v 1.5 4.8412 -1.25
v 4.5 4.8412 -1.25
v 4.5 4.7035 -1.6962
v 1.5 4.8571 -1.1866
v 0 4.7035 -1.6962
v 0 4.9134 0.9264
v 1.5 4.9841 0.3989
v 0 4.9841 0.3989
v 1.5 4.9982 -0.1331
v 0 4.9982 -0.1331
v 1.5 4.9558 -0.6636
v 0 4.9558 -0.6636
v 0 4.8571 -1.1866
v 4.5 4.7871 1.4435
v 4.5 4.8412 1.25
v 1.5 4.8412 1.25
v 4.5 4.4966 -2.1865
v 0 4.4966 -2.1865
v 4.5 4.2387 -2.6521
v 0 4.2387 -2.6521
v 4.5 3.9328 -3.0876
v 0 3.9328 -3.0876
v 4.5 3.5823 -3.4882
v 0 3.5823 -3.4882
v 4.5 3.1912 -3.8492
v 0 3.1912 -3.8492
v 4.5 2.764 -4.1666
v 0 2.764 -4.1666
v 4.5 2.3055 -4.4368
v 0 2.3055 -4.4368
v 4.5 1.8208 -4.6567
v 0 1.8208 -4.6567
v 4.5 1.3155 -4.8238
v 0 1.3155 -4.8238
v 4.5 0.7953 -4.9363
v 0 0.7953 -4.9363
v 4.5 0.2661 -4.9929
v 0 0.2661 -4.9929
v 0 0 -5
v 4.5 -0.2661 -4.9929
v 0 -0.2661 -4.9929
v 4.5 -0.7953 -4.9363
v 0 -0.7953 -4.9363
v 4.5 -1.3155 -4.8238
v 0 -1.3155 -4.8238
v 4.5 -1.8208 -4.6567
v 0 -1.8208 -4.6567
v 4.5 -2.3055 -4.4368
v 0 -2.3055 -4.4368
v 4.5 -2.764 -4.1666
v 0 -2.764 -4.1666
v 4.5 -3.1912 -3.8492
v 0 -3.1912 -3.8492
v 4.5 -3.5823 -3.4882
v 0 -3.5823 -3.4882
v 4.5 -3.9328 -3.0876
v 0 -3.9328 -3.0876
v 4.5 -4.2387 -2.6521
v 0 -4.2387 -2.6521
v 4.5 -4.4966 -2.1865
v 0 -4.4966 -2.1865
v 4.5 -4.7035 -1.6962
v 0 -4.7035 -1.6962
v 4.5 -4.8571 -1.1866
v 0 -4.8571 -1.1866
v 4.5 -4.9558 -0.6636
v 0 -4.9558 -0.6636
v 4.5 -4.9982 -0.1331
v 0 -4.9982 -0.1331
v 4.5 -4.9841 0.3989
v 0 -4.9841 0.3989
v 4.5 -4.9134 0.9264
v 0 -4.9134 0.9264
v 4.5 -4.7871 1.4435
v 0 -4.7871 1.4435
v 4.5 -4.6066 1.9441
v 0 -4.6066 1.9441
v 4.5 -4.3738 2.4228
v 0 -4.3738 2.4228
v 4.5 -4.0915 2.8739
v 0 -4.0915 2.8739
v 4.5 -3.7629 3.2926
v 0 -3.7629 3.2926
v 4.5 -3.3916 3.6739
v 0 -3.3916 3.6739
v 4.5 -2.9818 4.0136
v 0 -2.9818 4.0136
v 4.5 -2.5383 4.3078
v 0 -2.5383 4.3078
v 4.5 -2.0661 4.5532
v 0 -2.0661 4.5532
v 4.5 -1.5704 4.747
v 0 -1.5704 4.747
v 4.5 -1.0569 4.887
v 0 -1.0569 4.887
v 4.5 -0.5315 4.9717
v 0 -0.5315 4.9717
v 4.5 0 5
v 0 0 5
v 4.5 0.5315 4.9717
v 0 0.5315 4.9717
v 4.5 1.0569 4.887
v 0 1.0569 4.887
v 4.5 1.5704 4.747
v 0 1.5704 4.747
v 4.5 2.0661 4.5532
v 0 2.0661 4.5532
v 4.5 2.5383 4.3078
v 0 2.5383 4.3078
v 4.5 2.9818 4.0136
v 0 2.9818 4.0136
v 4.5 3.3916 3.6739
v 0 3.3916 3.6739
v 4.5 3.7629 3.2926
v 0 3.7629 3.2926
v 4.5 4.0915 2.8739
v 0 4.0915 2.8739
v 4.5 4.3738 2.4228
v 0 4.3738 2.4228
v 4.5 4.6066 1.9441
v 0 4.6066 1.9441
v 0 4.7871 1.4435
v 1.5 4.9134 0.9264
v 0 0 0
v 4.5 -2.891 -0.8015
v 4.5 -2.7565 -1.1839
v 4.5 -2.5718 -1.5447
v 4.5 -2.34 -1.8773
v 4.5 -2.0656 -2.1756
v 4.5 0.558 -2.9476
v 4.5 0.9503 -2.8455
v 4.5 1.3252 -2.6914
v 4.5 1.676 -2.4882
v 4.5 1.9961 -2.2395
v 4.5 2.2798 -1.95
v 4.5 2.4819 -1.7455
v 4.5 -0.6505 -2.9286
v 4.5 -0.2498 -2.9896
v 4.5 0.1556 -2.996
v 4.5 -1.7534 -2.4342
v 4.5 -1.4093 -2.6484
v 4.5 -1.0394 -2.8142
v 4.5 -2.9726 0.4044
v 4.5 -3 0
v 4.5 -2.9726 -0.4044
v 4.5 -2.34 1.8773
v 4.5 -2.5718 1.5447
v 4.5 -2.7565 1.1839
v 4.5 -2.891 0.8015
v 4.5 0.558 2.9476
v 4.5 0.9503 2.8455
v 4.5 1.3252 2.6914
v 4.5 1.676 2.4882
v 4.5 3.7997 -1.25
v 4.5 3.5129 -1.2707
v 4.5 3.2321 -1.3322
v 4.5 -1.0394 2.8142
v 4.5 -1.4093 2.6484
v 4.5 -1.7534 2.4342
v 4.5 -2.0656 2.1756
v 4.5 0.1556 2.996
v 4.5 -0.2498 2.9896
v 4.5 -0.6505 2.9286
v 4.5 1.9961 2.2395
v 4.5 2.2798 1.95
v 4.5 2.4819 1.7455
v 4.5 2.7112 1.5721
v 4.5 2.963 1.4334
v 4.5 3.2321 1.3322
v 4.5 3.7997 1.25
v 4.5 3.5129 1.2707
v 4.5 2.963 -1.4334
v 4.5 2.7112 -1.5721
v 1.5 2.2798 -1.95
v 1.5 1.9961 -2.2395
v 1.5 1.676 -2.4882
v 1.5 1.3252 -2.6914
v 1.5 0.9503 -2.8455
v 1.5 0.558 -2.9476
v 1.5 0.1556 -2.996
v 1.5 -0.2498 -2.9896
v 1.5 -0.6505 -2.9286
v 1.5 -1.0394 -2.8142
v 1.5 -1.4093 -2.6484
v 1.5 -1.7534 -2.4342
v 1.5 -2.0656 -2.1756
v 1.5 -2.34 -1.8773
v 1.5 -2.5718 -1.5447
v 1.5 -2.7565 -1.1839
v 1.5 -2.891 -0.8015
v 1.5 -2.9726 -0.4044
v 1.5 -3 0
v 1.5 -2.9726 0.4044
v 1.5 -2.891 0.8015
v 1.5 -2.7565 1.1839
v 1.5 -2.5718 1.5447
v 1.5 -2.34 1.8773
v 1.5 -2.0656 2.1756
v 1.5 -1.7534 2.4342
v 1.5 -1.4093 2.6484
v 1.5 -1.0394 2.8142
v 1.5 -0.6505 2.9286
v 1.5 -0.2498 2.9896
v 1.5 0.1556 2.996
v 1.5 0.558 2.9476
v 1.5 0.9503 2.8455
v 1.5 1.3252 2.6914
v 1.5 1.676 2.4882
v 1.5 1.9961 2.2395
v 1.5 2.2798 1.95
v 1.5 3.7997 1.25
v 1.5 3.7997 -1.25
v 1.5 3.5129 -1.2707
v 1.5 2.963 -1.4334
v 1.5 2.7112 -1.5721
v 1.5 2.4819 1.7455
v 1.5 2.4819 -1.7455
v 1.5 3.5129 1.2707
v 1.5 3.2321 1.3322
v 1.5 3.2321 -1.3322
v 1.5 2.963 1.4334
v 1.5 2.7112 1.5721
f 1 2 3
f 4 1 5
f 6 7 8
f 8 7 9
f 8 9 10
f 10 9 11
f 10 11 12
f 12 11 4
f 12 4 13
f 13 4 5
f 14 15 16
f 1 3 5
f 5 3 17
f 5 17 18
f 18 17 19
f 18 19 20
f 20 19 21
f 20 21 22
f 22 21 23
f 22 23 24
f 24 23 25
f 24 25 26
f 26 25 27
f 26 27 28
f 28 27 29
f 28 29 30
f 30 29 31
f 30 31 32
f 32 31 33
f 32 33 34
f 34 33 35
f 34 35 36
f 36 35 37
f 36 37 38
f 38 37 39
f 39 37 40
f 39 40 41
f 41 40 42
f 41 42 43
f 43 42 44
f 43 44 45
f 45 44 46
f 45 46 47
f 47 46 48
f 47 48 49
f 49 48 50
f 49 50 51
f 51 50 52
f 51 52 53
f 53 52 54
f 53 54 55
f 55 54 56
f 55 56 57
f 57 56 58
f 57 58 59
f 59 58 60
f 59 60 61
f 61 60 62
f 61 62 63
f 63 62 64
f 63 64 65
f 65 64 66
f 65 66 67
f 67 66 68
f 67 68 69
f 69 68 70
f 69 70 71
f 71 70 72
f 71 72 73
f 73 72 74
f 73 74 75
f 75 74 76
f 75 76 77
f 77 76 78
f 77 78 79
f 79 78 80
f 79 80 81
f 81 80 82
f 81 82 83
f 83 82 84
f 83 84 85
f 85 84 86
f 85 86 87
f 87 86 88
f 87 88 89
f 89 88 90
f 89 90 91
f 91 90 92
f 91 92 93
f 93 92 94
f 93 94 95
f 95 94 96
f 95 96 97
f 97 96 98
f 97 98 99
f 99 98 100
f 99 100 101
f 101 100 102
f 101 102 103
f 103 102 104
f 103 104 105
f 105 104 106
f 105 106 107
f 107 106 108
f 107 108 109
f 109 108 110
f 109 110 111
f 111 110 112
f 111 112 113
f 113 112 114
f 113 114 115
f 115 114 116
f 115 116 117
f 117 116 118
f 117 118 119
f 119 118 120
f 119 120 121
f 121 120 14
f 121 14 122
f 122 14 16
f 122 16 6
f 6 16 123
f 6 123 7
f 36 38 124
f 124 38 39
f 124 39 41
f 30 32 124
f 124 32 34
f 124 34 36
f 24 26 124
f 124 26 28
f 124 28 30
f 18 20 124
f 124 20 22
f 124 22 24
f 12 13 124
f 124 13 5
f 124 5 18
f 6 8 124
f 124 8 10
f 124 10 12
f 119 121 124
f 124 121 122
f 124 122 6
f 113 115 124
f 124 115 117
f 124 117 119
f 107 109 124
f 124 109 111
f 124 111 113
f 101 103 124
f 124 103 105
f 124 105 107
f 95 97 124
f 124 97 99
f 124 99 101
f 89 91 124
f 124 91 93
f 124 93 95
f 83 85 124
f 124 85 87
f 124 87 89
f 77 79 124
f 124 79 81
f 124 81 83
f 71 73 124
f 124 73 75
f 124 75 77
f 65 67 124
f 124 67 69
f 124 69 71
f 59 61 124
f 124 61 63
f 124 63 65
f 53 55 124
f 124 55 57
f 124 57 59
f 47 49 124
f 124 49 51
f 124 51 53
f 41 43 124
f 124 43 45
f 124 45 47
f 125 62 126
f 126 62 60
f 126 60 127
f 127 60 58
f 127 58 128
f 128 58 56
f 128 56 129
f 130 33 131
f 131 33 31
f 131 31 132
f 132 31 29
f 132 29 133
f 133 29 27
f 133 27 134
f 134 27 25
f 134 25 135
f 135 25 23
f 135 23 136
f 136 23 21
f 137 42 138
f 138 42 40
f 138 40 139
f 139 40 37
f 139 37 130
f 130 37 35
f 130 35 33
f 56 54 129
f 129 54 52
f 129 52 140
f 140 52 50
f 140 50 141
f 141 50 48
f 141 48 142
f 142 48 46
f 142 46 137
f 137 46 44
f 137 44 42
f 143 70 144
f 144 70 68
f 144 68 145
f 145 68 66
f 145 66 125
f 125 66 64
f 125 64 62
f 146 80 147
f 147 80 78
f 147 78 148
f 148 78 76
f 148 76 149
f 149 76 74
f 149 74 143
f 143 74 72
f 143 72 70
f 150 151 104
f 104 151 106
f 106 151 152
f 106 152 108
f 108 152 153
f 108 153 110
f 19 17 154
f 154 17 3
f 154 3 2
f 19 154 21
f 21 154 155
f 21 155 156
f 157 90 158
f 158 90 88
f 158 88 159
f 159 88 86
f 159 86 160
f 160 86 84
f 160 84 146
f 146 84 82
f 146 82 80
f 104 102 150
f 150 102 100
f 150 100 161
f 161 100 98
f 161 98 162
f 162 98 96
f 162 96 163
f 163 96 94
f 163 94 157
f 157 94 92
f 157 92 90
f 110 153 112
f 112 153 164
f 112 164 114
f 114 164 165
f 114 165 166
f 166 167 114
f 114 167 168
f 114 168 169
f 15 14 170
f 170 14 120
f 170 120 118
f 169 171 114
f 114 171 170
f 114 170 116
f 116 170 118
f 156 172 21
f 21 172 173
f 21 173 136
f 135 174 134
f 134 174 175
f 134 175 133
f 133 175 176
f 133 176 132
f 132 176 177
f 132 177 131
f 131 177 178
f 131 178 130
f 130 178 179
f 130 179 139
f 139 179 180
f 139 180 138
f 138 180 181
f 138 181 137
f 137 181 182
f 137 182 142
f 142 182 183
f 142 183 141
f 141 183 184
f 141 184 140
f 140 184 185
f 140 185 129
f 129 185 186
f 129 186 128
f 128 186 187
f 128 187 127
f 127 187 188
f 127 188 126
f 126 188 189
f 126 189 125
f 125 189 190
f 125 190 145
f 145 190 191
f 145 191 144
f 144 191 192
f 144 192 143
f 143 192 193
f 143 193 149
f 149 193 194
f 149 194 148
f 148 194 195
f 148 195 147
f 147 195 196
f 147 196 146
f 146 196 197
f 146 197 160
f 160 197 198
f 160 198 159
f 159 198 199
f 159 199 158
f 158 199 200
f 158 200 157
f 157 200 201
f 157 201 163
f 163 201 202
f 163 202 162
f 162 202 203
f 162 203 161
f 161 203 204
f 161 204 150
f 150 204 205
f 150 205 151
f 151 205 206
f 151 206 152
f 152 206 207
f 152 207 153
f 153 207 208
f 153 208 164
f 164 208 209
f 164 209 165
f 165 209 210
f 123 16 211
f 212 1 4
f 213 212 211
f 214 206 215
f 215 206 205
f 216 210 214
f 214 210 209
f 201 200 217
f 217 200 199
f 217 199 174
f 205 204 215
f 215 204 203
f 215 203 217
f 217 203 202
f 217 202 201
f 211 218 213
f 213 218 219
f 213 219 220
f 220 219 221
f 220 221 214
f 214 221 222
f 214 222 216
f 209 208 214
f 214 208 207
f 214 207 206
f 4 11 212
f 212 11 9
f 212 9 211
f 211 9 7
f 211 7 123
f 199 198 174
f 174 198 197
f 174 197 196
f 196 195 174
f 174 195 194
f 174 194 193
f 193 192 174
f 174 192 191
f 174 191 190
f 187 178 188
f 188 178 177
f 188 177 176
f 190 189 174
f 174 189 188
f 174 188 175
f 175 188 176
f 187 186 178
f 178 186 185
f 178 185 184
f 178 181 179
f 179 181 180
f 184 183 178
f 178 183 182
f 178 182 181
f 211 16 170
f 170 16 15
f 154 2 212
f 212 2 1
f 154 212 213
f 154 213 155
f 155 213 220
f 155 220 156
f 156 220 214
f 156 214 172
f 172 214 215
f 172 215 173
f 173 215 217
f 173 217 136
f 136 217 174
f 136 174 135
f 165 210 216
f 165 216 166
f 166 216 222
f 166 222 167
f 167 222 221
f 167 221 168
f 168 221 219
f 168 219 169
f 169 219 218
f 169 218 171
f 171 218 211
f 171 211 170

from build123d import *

# Parameters (mm, degrees)
SKETCH1_R           = 5
BOSS_EXTRUDE1_DEPTH = 1.5
SKETCH2_R           = 5
SKETCH2_R_2         = 3
BOSS_EXTRUDE2_DEPTH = 3
CUT_EXTRUDE1_DEPTH  = 8.681145748
FILLET1_R           = 2


with BuildPart() as part:
    # Sketch1 → Boss-Extrude1 (new body)
    with BuildSketch(Plane(origin=(0, 0, 0), x_dir=(0, 0, -1), z_dir=(1, 0, 0))):
        Circle(SKETCH1_R)
    extrude(amount=BOSS_EXTRUDE1_DEPTH)

    # Sketch2 → Boss-Extrude2 (add)
    with BuildSketch(Plane(origin=(1.5, 0, 0), x_dir=(0, 0, -1), z_dir=(1, 0, 0))):
        Circle(SKETCH2_R)
        Circle(SKETCH2_R_2, mode=Mode.SUBTRACT)
    extrude(amount=BOSS_EXTRUDE2_DEPTH)

    # Sketch3 → Cut-Extrude1 (cut, through all)
    with BuildSketch(Plane(origin=(1.5, 0, 0), x_dir=(0, 0, -1), z_dir=(1, 0, 0))):
        with BuildLine():
            Line((-1.25, 6), (-1.25, 2.727178029))
            ThreePointArc((-1.25, 2.727178029), (0, 3), (1.25, 2.727178029))
            Line((1.25, 2.727178029), (1.25, 6))
            Line((1.25, 6), (-1.25, 6))
        make_face()
        with BuildLine():
            Line((-1.25, 2.727178029), (-1.25, 0))
            Line((-1.25, 0), (1.25, 0))
            Line((1.25, 0), (1.25, 2.727178029))
            ThreePointArc((1.25, 2.727178029), (0, 3), (-1.25, 2.727178029))
        make_face()
        with BuildLine():
            Line((1.25, 0), (-1.25, 0))
            Line((-1.25, 0), (-1.25, -2.727178029))
            ThreePointArc((-1.25, -2.727178029), (0, -3), (1.25, -2.727178029))
            Line((1.25, -2.727178029), (1.25, 0))
        make_face()
    extrude(amount=CUT_EXTRUDE1_DEPTH, mode=Mode.SUBTRACT)

    # Fillet1
    fillet1_edges = [part.edges().sort_by_distance(p)[0] for p in [
        (3, 2.727178029, 1.25),
        (3, 2.727178029, -1.25),
    ]]
    fillet(fillet1_edges, radius=FILLET1_R)


solid = part.part
